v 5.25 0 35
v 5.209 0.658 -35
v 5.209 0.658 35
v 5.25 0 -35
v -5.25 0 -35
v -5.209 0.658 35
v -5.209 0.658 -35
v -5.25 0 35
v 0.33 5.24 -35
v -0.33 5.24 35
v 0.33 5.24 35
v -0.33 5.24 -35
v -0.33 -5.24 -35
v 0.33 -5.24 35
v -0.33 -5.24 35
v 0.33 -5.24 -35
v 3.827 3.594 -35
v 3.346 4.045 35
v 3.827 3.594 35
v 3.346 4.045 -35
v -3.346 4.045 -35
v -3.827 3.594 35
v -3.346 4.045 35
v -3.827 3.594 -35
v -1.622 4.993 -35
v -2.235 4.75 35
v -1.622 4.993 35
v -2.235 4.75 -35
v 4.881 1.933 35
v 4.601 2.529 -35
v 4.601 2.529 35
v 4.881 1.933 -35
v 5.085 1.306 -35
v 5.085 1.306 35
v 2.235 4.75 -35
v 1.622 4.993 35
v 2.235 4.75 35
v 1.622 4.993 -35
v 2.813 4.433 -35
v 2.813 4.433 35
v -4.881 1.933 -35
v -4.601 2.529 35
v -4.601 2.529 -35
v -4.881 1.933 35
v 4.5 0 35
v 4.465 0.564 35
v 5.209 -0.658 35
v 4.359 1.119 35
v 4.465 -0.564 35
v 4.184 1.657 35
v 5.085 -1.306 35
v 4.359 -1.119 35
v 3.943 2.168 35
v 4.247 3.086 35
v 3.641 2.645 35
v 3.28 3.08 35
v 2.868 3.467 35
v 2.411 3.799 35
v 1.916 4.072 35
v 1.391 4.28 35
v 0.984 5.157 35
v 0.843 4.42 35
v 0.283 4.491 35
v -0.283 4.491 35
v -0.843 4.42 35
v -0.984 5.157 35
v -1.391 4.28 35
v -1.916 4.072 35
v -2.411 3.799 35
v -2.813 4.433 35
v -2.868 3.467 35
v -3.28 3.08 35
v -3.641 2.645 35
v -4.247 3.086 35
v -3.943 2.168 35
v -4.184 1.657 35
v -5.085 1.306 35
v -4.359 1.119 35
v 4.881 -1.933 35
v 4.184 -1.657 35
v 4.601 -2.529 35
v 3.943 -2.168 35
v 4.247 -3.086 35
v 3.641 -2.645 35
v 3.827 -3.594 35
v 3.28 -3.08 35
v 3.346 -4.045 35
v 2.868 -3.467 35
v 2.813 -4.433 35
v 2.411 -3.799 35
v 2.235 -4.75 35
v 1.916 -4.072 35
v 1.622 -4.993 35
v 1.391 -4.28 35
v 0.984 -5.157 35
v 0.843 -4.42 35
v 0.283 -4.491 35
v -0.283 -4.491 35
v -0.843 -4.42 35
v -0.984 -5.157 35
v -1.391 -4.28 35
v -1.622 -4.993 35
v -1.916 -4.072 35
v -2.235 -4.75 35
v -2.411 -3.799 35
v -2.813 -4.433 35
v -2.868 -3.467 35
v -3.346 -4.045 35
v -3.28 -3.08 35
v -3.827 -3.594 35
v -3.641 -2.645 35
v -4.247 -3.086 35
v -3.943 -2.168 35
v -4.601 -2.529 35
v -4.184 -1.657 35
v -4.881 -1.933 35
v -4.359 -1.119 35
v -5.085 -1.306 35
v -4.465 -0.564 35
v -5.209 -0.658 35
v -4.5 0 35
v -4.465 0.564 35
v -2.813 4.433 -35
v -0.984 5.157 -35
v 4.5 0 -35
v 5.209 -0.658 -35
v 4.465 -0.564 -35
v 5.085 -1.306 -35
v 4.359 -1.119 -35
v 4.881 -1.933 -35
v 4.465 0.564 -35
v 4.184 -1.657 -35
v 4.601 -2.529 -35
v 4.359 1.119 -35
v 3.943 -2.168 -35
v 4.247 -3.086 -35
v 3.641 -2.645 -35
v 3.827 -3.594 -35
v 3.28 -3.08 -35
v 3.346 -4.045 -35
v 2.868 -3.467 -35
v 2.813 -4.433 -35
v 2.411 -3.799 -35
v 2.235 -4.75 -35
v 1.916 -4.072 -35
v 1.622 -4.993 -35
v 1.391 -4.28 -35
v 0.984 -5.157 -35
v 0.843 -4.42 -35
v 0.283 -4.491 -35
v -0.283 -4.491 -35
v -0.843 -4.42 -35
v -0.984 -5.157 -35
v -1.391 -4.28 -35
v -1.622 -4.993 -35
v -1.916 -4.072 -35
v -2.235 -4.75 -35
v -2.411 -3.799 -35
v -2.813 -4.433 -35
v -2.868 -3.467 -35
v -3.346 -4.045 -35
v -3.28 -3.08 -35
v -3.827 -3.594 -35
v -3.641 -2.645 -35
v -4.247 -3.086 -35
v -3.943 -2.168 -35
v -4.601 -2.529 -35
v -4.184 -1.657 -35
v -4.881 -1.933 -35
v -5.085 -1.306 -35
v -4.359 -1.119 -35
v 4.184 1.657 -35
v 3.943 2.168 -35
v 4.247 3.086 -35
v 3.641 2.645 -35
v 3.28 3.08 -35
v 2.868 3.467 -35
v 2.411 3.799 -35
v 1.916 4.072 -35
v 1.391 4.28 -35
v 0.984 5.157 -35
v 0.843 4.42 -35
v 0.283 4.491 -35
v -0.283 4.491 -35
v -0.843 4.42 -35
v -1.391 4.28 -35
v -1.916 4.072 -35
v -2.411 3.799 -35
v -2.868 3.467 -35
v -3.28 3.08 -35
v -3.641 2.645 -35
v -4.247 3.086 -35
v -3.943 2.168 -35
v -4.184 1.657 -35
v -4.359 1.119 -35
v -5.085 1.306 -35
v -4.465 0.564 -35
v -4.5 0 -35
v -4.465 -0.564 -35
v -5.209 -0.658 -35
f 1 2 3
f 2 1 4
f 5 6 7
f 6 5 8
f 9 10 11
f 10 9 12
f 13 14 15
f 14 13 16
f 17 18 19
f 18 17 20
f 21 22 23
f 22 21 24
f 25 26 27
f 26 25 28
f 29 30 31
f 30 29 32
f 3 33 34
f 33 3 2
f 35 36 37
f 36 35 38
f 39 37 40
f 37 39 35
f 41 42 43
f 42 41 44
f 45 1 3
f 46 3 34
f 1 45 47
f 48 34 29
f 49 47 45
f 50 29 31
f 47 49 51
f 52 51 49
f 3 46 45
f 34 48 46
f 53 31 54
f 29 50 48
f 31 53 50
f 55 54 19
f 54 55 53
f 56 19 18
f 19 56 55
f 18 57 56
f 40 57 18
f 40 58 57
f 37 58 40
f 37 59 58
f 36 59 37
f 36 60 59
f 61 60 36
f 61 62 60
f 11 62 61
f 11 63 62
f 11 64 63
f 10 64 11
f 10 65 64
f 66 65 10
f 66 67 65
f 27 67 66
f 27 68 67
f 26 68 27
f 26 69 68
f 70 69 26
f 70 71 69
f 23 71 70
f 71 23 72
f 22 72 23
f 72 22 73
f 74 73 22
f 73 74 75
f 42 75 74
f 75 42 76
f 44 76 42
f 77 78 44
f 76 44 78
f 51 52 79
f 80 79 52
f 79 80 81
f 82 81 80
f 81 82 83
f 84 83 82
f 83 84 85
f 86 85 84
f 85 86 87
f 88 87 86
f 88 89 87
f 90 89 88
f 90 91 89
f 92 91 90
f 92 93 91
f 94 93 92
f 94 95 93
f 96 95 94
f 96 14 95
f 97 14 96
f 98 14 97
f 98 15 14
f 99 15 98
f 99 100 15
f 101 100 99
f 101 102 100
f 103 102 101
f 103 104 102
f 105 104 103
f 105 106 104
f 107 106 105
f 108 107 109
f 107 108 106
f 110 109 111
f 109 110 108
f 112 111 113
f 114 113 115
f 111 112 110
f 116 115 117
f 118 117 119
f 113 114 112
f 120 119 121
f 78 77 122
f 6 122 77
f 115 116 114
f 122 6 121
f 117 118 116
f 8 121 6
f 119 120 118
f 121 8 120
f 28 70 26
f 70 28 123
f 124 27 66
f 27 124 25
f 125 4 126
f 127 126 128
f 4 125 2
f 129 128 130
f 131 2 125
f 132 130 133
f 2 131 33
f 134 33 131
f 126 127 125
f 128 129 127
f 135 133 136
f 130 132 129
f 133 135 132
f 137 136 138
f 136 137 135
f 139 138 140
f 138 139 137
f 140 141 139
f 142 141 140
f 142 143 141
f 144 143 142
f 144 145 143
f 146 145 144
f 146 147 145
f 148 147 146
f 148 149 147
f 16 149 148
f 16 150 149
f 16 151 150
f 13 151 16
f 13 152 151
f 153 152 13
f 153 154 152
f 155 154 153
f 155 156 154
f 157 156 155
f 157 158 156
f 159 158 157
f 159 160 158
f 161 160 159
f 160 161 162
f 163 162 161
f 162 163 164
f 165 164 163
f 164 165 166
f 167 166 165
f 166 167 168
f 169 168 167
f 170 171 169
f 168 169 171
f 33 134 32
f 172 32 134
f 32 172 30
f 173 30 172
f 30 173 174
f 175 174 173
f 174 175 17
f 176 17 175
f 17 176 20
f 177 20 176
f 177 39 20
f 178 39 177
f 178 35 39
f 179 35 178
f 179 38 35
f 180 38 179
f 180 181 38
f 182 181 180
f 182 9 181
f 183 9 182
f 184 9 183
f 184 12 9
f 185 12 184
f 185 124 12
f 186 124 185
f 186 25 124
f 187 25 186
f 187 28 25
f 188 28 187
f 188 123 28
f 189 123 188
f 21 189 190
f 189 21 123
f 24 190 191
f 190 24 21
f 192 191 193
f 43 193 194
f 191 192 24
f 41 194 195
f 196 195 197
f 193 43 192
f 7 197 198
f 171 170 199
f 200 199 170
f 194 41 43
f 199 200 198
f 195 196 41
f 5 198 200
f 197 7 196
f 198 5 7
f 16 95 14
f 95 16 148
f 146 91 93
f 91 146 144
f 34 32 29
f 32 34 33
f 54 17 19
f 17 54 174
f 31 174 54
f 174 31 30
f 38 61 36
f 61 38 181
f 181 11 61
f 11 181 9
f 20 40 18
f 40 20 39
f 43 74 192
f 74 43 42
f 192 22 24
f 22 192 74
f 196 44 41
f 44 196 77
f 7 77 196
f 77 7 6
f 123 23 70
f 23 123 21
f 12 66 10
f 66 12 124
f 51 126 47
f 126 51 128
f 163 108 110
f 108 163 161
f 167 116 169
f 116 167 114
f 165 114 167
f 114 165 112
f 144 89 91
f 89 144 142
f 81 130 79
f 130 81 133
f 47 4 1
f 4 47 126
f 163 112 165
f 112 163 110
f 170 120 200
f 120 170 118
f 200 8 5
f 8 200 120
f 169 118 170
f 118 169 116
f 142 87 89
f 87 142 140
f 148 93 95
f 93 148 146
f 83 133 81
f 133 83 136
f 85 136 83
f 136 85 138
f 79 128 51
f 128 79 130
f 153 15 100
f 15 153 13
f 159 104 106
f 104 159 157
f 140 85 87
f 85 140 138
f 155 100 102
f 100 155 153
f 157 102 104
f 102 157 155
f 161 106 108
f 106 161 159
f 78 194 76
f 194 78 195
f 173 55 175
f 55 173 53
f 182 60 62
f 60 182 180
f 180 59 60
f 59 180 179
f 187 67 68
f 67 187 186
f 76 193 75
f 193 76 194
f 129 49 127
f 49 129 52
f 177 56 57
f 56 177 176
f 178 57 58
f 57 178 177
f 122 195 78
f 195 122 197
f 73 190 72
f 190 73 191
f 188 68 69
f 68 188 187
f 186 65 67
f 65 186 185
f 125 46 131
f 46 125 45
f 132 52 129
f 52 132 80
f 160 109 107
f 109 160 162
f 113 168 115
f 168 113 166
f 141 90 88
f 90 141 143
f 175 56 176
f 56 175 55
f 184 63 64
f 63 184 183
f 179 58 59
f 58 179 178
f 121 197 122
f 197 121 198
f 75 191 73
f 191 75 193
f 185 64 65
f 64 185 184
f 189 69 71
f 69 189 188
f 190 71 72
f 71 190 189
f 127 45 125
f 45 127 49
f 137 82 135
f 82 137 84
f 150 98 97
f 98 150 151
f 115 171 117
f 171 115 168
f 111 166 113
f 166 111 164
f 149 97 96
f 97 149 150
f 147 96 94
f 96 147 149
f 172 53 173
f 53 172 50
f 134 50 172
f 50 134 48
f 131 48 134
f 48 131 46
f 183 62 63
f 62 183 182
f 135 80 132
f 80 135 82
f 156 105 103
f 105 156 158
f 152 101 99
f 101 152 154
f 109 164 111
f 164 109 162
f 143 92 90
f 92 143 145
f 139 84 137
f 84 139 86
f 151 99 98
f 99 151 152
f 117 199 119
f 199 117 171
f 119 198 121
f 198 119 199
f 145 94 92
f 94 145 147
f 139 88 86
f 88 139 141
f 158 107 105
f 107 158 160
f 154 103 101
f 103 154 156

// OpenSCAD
$fn = 50;


difference() {
	union() {
		translate(v = [0, 0, -35.0000000000]) {
			cylinder(h = 70, r = 5.2500000000);
		}
	}
	union() {
		translate(v = [0, 0, -100.0000000000]) {
			cylinder(h = 200, r = 4.5000000000);
		}
	}
}
